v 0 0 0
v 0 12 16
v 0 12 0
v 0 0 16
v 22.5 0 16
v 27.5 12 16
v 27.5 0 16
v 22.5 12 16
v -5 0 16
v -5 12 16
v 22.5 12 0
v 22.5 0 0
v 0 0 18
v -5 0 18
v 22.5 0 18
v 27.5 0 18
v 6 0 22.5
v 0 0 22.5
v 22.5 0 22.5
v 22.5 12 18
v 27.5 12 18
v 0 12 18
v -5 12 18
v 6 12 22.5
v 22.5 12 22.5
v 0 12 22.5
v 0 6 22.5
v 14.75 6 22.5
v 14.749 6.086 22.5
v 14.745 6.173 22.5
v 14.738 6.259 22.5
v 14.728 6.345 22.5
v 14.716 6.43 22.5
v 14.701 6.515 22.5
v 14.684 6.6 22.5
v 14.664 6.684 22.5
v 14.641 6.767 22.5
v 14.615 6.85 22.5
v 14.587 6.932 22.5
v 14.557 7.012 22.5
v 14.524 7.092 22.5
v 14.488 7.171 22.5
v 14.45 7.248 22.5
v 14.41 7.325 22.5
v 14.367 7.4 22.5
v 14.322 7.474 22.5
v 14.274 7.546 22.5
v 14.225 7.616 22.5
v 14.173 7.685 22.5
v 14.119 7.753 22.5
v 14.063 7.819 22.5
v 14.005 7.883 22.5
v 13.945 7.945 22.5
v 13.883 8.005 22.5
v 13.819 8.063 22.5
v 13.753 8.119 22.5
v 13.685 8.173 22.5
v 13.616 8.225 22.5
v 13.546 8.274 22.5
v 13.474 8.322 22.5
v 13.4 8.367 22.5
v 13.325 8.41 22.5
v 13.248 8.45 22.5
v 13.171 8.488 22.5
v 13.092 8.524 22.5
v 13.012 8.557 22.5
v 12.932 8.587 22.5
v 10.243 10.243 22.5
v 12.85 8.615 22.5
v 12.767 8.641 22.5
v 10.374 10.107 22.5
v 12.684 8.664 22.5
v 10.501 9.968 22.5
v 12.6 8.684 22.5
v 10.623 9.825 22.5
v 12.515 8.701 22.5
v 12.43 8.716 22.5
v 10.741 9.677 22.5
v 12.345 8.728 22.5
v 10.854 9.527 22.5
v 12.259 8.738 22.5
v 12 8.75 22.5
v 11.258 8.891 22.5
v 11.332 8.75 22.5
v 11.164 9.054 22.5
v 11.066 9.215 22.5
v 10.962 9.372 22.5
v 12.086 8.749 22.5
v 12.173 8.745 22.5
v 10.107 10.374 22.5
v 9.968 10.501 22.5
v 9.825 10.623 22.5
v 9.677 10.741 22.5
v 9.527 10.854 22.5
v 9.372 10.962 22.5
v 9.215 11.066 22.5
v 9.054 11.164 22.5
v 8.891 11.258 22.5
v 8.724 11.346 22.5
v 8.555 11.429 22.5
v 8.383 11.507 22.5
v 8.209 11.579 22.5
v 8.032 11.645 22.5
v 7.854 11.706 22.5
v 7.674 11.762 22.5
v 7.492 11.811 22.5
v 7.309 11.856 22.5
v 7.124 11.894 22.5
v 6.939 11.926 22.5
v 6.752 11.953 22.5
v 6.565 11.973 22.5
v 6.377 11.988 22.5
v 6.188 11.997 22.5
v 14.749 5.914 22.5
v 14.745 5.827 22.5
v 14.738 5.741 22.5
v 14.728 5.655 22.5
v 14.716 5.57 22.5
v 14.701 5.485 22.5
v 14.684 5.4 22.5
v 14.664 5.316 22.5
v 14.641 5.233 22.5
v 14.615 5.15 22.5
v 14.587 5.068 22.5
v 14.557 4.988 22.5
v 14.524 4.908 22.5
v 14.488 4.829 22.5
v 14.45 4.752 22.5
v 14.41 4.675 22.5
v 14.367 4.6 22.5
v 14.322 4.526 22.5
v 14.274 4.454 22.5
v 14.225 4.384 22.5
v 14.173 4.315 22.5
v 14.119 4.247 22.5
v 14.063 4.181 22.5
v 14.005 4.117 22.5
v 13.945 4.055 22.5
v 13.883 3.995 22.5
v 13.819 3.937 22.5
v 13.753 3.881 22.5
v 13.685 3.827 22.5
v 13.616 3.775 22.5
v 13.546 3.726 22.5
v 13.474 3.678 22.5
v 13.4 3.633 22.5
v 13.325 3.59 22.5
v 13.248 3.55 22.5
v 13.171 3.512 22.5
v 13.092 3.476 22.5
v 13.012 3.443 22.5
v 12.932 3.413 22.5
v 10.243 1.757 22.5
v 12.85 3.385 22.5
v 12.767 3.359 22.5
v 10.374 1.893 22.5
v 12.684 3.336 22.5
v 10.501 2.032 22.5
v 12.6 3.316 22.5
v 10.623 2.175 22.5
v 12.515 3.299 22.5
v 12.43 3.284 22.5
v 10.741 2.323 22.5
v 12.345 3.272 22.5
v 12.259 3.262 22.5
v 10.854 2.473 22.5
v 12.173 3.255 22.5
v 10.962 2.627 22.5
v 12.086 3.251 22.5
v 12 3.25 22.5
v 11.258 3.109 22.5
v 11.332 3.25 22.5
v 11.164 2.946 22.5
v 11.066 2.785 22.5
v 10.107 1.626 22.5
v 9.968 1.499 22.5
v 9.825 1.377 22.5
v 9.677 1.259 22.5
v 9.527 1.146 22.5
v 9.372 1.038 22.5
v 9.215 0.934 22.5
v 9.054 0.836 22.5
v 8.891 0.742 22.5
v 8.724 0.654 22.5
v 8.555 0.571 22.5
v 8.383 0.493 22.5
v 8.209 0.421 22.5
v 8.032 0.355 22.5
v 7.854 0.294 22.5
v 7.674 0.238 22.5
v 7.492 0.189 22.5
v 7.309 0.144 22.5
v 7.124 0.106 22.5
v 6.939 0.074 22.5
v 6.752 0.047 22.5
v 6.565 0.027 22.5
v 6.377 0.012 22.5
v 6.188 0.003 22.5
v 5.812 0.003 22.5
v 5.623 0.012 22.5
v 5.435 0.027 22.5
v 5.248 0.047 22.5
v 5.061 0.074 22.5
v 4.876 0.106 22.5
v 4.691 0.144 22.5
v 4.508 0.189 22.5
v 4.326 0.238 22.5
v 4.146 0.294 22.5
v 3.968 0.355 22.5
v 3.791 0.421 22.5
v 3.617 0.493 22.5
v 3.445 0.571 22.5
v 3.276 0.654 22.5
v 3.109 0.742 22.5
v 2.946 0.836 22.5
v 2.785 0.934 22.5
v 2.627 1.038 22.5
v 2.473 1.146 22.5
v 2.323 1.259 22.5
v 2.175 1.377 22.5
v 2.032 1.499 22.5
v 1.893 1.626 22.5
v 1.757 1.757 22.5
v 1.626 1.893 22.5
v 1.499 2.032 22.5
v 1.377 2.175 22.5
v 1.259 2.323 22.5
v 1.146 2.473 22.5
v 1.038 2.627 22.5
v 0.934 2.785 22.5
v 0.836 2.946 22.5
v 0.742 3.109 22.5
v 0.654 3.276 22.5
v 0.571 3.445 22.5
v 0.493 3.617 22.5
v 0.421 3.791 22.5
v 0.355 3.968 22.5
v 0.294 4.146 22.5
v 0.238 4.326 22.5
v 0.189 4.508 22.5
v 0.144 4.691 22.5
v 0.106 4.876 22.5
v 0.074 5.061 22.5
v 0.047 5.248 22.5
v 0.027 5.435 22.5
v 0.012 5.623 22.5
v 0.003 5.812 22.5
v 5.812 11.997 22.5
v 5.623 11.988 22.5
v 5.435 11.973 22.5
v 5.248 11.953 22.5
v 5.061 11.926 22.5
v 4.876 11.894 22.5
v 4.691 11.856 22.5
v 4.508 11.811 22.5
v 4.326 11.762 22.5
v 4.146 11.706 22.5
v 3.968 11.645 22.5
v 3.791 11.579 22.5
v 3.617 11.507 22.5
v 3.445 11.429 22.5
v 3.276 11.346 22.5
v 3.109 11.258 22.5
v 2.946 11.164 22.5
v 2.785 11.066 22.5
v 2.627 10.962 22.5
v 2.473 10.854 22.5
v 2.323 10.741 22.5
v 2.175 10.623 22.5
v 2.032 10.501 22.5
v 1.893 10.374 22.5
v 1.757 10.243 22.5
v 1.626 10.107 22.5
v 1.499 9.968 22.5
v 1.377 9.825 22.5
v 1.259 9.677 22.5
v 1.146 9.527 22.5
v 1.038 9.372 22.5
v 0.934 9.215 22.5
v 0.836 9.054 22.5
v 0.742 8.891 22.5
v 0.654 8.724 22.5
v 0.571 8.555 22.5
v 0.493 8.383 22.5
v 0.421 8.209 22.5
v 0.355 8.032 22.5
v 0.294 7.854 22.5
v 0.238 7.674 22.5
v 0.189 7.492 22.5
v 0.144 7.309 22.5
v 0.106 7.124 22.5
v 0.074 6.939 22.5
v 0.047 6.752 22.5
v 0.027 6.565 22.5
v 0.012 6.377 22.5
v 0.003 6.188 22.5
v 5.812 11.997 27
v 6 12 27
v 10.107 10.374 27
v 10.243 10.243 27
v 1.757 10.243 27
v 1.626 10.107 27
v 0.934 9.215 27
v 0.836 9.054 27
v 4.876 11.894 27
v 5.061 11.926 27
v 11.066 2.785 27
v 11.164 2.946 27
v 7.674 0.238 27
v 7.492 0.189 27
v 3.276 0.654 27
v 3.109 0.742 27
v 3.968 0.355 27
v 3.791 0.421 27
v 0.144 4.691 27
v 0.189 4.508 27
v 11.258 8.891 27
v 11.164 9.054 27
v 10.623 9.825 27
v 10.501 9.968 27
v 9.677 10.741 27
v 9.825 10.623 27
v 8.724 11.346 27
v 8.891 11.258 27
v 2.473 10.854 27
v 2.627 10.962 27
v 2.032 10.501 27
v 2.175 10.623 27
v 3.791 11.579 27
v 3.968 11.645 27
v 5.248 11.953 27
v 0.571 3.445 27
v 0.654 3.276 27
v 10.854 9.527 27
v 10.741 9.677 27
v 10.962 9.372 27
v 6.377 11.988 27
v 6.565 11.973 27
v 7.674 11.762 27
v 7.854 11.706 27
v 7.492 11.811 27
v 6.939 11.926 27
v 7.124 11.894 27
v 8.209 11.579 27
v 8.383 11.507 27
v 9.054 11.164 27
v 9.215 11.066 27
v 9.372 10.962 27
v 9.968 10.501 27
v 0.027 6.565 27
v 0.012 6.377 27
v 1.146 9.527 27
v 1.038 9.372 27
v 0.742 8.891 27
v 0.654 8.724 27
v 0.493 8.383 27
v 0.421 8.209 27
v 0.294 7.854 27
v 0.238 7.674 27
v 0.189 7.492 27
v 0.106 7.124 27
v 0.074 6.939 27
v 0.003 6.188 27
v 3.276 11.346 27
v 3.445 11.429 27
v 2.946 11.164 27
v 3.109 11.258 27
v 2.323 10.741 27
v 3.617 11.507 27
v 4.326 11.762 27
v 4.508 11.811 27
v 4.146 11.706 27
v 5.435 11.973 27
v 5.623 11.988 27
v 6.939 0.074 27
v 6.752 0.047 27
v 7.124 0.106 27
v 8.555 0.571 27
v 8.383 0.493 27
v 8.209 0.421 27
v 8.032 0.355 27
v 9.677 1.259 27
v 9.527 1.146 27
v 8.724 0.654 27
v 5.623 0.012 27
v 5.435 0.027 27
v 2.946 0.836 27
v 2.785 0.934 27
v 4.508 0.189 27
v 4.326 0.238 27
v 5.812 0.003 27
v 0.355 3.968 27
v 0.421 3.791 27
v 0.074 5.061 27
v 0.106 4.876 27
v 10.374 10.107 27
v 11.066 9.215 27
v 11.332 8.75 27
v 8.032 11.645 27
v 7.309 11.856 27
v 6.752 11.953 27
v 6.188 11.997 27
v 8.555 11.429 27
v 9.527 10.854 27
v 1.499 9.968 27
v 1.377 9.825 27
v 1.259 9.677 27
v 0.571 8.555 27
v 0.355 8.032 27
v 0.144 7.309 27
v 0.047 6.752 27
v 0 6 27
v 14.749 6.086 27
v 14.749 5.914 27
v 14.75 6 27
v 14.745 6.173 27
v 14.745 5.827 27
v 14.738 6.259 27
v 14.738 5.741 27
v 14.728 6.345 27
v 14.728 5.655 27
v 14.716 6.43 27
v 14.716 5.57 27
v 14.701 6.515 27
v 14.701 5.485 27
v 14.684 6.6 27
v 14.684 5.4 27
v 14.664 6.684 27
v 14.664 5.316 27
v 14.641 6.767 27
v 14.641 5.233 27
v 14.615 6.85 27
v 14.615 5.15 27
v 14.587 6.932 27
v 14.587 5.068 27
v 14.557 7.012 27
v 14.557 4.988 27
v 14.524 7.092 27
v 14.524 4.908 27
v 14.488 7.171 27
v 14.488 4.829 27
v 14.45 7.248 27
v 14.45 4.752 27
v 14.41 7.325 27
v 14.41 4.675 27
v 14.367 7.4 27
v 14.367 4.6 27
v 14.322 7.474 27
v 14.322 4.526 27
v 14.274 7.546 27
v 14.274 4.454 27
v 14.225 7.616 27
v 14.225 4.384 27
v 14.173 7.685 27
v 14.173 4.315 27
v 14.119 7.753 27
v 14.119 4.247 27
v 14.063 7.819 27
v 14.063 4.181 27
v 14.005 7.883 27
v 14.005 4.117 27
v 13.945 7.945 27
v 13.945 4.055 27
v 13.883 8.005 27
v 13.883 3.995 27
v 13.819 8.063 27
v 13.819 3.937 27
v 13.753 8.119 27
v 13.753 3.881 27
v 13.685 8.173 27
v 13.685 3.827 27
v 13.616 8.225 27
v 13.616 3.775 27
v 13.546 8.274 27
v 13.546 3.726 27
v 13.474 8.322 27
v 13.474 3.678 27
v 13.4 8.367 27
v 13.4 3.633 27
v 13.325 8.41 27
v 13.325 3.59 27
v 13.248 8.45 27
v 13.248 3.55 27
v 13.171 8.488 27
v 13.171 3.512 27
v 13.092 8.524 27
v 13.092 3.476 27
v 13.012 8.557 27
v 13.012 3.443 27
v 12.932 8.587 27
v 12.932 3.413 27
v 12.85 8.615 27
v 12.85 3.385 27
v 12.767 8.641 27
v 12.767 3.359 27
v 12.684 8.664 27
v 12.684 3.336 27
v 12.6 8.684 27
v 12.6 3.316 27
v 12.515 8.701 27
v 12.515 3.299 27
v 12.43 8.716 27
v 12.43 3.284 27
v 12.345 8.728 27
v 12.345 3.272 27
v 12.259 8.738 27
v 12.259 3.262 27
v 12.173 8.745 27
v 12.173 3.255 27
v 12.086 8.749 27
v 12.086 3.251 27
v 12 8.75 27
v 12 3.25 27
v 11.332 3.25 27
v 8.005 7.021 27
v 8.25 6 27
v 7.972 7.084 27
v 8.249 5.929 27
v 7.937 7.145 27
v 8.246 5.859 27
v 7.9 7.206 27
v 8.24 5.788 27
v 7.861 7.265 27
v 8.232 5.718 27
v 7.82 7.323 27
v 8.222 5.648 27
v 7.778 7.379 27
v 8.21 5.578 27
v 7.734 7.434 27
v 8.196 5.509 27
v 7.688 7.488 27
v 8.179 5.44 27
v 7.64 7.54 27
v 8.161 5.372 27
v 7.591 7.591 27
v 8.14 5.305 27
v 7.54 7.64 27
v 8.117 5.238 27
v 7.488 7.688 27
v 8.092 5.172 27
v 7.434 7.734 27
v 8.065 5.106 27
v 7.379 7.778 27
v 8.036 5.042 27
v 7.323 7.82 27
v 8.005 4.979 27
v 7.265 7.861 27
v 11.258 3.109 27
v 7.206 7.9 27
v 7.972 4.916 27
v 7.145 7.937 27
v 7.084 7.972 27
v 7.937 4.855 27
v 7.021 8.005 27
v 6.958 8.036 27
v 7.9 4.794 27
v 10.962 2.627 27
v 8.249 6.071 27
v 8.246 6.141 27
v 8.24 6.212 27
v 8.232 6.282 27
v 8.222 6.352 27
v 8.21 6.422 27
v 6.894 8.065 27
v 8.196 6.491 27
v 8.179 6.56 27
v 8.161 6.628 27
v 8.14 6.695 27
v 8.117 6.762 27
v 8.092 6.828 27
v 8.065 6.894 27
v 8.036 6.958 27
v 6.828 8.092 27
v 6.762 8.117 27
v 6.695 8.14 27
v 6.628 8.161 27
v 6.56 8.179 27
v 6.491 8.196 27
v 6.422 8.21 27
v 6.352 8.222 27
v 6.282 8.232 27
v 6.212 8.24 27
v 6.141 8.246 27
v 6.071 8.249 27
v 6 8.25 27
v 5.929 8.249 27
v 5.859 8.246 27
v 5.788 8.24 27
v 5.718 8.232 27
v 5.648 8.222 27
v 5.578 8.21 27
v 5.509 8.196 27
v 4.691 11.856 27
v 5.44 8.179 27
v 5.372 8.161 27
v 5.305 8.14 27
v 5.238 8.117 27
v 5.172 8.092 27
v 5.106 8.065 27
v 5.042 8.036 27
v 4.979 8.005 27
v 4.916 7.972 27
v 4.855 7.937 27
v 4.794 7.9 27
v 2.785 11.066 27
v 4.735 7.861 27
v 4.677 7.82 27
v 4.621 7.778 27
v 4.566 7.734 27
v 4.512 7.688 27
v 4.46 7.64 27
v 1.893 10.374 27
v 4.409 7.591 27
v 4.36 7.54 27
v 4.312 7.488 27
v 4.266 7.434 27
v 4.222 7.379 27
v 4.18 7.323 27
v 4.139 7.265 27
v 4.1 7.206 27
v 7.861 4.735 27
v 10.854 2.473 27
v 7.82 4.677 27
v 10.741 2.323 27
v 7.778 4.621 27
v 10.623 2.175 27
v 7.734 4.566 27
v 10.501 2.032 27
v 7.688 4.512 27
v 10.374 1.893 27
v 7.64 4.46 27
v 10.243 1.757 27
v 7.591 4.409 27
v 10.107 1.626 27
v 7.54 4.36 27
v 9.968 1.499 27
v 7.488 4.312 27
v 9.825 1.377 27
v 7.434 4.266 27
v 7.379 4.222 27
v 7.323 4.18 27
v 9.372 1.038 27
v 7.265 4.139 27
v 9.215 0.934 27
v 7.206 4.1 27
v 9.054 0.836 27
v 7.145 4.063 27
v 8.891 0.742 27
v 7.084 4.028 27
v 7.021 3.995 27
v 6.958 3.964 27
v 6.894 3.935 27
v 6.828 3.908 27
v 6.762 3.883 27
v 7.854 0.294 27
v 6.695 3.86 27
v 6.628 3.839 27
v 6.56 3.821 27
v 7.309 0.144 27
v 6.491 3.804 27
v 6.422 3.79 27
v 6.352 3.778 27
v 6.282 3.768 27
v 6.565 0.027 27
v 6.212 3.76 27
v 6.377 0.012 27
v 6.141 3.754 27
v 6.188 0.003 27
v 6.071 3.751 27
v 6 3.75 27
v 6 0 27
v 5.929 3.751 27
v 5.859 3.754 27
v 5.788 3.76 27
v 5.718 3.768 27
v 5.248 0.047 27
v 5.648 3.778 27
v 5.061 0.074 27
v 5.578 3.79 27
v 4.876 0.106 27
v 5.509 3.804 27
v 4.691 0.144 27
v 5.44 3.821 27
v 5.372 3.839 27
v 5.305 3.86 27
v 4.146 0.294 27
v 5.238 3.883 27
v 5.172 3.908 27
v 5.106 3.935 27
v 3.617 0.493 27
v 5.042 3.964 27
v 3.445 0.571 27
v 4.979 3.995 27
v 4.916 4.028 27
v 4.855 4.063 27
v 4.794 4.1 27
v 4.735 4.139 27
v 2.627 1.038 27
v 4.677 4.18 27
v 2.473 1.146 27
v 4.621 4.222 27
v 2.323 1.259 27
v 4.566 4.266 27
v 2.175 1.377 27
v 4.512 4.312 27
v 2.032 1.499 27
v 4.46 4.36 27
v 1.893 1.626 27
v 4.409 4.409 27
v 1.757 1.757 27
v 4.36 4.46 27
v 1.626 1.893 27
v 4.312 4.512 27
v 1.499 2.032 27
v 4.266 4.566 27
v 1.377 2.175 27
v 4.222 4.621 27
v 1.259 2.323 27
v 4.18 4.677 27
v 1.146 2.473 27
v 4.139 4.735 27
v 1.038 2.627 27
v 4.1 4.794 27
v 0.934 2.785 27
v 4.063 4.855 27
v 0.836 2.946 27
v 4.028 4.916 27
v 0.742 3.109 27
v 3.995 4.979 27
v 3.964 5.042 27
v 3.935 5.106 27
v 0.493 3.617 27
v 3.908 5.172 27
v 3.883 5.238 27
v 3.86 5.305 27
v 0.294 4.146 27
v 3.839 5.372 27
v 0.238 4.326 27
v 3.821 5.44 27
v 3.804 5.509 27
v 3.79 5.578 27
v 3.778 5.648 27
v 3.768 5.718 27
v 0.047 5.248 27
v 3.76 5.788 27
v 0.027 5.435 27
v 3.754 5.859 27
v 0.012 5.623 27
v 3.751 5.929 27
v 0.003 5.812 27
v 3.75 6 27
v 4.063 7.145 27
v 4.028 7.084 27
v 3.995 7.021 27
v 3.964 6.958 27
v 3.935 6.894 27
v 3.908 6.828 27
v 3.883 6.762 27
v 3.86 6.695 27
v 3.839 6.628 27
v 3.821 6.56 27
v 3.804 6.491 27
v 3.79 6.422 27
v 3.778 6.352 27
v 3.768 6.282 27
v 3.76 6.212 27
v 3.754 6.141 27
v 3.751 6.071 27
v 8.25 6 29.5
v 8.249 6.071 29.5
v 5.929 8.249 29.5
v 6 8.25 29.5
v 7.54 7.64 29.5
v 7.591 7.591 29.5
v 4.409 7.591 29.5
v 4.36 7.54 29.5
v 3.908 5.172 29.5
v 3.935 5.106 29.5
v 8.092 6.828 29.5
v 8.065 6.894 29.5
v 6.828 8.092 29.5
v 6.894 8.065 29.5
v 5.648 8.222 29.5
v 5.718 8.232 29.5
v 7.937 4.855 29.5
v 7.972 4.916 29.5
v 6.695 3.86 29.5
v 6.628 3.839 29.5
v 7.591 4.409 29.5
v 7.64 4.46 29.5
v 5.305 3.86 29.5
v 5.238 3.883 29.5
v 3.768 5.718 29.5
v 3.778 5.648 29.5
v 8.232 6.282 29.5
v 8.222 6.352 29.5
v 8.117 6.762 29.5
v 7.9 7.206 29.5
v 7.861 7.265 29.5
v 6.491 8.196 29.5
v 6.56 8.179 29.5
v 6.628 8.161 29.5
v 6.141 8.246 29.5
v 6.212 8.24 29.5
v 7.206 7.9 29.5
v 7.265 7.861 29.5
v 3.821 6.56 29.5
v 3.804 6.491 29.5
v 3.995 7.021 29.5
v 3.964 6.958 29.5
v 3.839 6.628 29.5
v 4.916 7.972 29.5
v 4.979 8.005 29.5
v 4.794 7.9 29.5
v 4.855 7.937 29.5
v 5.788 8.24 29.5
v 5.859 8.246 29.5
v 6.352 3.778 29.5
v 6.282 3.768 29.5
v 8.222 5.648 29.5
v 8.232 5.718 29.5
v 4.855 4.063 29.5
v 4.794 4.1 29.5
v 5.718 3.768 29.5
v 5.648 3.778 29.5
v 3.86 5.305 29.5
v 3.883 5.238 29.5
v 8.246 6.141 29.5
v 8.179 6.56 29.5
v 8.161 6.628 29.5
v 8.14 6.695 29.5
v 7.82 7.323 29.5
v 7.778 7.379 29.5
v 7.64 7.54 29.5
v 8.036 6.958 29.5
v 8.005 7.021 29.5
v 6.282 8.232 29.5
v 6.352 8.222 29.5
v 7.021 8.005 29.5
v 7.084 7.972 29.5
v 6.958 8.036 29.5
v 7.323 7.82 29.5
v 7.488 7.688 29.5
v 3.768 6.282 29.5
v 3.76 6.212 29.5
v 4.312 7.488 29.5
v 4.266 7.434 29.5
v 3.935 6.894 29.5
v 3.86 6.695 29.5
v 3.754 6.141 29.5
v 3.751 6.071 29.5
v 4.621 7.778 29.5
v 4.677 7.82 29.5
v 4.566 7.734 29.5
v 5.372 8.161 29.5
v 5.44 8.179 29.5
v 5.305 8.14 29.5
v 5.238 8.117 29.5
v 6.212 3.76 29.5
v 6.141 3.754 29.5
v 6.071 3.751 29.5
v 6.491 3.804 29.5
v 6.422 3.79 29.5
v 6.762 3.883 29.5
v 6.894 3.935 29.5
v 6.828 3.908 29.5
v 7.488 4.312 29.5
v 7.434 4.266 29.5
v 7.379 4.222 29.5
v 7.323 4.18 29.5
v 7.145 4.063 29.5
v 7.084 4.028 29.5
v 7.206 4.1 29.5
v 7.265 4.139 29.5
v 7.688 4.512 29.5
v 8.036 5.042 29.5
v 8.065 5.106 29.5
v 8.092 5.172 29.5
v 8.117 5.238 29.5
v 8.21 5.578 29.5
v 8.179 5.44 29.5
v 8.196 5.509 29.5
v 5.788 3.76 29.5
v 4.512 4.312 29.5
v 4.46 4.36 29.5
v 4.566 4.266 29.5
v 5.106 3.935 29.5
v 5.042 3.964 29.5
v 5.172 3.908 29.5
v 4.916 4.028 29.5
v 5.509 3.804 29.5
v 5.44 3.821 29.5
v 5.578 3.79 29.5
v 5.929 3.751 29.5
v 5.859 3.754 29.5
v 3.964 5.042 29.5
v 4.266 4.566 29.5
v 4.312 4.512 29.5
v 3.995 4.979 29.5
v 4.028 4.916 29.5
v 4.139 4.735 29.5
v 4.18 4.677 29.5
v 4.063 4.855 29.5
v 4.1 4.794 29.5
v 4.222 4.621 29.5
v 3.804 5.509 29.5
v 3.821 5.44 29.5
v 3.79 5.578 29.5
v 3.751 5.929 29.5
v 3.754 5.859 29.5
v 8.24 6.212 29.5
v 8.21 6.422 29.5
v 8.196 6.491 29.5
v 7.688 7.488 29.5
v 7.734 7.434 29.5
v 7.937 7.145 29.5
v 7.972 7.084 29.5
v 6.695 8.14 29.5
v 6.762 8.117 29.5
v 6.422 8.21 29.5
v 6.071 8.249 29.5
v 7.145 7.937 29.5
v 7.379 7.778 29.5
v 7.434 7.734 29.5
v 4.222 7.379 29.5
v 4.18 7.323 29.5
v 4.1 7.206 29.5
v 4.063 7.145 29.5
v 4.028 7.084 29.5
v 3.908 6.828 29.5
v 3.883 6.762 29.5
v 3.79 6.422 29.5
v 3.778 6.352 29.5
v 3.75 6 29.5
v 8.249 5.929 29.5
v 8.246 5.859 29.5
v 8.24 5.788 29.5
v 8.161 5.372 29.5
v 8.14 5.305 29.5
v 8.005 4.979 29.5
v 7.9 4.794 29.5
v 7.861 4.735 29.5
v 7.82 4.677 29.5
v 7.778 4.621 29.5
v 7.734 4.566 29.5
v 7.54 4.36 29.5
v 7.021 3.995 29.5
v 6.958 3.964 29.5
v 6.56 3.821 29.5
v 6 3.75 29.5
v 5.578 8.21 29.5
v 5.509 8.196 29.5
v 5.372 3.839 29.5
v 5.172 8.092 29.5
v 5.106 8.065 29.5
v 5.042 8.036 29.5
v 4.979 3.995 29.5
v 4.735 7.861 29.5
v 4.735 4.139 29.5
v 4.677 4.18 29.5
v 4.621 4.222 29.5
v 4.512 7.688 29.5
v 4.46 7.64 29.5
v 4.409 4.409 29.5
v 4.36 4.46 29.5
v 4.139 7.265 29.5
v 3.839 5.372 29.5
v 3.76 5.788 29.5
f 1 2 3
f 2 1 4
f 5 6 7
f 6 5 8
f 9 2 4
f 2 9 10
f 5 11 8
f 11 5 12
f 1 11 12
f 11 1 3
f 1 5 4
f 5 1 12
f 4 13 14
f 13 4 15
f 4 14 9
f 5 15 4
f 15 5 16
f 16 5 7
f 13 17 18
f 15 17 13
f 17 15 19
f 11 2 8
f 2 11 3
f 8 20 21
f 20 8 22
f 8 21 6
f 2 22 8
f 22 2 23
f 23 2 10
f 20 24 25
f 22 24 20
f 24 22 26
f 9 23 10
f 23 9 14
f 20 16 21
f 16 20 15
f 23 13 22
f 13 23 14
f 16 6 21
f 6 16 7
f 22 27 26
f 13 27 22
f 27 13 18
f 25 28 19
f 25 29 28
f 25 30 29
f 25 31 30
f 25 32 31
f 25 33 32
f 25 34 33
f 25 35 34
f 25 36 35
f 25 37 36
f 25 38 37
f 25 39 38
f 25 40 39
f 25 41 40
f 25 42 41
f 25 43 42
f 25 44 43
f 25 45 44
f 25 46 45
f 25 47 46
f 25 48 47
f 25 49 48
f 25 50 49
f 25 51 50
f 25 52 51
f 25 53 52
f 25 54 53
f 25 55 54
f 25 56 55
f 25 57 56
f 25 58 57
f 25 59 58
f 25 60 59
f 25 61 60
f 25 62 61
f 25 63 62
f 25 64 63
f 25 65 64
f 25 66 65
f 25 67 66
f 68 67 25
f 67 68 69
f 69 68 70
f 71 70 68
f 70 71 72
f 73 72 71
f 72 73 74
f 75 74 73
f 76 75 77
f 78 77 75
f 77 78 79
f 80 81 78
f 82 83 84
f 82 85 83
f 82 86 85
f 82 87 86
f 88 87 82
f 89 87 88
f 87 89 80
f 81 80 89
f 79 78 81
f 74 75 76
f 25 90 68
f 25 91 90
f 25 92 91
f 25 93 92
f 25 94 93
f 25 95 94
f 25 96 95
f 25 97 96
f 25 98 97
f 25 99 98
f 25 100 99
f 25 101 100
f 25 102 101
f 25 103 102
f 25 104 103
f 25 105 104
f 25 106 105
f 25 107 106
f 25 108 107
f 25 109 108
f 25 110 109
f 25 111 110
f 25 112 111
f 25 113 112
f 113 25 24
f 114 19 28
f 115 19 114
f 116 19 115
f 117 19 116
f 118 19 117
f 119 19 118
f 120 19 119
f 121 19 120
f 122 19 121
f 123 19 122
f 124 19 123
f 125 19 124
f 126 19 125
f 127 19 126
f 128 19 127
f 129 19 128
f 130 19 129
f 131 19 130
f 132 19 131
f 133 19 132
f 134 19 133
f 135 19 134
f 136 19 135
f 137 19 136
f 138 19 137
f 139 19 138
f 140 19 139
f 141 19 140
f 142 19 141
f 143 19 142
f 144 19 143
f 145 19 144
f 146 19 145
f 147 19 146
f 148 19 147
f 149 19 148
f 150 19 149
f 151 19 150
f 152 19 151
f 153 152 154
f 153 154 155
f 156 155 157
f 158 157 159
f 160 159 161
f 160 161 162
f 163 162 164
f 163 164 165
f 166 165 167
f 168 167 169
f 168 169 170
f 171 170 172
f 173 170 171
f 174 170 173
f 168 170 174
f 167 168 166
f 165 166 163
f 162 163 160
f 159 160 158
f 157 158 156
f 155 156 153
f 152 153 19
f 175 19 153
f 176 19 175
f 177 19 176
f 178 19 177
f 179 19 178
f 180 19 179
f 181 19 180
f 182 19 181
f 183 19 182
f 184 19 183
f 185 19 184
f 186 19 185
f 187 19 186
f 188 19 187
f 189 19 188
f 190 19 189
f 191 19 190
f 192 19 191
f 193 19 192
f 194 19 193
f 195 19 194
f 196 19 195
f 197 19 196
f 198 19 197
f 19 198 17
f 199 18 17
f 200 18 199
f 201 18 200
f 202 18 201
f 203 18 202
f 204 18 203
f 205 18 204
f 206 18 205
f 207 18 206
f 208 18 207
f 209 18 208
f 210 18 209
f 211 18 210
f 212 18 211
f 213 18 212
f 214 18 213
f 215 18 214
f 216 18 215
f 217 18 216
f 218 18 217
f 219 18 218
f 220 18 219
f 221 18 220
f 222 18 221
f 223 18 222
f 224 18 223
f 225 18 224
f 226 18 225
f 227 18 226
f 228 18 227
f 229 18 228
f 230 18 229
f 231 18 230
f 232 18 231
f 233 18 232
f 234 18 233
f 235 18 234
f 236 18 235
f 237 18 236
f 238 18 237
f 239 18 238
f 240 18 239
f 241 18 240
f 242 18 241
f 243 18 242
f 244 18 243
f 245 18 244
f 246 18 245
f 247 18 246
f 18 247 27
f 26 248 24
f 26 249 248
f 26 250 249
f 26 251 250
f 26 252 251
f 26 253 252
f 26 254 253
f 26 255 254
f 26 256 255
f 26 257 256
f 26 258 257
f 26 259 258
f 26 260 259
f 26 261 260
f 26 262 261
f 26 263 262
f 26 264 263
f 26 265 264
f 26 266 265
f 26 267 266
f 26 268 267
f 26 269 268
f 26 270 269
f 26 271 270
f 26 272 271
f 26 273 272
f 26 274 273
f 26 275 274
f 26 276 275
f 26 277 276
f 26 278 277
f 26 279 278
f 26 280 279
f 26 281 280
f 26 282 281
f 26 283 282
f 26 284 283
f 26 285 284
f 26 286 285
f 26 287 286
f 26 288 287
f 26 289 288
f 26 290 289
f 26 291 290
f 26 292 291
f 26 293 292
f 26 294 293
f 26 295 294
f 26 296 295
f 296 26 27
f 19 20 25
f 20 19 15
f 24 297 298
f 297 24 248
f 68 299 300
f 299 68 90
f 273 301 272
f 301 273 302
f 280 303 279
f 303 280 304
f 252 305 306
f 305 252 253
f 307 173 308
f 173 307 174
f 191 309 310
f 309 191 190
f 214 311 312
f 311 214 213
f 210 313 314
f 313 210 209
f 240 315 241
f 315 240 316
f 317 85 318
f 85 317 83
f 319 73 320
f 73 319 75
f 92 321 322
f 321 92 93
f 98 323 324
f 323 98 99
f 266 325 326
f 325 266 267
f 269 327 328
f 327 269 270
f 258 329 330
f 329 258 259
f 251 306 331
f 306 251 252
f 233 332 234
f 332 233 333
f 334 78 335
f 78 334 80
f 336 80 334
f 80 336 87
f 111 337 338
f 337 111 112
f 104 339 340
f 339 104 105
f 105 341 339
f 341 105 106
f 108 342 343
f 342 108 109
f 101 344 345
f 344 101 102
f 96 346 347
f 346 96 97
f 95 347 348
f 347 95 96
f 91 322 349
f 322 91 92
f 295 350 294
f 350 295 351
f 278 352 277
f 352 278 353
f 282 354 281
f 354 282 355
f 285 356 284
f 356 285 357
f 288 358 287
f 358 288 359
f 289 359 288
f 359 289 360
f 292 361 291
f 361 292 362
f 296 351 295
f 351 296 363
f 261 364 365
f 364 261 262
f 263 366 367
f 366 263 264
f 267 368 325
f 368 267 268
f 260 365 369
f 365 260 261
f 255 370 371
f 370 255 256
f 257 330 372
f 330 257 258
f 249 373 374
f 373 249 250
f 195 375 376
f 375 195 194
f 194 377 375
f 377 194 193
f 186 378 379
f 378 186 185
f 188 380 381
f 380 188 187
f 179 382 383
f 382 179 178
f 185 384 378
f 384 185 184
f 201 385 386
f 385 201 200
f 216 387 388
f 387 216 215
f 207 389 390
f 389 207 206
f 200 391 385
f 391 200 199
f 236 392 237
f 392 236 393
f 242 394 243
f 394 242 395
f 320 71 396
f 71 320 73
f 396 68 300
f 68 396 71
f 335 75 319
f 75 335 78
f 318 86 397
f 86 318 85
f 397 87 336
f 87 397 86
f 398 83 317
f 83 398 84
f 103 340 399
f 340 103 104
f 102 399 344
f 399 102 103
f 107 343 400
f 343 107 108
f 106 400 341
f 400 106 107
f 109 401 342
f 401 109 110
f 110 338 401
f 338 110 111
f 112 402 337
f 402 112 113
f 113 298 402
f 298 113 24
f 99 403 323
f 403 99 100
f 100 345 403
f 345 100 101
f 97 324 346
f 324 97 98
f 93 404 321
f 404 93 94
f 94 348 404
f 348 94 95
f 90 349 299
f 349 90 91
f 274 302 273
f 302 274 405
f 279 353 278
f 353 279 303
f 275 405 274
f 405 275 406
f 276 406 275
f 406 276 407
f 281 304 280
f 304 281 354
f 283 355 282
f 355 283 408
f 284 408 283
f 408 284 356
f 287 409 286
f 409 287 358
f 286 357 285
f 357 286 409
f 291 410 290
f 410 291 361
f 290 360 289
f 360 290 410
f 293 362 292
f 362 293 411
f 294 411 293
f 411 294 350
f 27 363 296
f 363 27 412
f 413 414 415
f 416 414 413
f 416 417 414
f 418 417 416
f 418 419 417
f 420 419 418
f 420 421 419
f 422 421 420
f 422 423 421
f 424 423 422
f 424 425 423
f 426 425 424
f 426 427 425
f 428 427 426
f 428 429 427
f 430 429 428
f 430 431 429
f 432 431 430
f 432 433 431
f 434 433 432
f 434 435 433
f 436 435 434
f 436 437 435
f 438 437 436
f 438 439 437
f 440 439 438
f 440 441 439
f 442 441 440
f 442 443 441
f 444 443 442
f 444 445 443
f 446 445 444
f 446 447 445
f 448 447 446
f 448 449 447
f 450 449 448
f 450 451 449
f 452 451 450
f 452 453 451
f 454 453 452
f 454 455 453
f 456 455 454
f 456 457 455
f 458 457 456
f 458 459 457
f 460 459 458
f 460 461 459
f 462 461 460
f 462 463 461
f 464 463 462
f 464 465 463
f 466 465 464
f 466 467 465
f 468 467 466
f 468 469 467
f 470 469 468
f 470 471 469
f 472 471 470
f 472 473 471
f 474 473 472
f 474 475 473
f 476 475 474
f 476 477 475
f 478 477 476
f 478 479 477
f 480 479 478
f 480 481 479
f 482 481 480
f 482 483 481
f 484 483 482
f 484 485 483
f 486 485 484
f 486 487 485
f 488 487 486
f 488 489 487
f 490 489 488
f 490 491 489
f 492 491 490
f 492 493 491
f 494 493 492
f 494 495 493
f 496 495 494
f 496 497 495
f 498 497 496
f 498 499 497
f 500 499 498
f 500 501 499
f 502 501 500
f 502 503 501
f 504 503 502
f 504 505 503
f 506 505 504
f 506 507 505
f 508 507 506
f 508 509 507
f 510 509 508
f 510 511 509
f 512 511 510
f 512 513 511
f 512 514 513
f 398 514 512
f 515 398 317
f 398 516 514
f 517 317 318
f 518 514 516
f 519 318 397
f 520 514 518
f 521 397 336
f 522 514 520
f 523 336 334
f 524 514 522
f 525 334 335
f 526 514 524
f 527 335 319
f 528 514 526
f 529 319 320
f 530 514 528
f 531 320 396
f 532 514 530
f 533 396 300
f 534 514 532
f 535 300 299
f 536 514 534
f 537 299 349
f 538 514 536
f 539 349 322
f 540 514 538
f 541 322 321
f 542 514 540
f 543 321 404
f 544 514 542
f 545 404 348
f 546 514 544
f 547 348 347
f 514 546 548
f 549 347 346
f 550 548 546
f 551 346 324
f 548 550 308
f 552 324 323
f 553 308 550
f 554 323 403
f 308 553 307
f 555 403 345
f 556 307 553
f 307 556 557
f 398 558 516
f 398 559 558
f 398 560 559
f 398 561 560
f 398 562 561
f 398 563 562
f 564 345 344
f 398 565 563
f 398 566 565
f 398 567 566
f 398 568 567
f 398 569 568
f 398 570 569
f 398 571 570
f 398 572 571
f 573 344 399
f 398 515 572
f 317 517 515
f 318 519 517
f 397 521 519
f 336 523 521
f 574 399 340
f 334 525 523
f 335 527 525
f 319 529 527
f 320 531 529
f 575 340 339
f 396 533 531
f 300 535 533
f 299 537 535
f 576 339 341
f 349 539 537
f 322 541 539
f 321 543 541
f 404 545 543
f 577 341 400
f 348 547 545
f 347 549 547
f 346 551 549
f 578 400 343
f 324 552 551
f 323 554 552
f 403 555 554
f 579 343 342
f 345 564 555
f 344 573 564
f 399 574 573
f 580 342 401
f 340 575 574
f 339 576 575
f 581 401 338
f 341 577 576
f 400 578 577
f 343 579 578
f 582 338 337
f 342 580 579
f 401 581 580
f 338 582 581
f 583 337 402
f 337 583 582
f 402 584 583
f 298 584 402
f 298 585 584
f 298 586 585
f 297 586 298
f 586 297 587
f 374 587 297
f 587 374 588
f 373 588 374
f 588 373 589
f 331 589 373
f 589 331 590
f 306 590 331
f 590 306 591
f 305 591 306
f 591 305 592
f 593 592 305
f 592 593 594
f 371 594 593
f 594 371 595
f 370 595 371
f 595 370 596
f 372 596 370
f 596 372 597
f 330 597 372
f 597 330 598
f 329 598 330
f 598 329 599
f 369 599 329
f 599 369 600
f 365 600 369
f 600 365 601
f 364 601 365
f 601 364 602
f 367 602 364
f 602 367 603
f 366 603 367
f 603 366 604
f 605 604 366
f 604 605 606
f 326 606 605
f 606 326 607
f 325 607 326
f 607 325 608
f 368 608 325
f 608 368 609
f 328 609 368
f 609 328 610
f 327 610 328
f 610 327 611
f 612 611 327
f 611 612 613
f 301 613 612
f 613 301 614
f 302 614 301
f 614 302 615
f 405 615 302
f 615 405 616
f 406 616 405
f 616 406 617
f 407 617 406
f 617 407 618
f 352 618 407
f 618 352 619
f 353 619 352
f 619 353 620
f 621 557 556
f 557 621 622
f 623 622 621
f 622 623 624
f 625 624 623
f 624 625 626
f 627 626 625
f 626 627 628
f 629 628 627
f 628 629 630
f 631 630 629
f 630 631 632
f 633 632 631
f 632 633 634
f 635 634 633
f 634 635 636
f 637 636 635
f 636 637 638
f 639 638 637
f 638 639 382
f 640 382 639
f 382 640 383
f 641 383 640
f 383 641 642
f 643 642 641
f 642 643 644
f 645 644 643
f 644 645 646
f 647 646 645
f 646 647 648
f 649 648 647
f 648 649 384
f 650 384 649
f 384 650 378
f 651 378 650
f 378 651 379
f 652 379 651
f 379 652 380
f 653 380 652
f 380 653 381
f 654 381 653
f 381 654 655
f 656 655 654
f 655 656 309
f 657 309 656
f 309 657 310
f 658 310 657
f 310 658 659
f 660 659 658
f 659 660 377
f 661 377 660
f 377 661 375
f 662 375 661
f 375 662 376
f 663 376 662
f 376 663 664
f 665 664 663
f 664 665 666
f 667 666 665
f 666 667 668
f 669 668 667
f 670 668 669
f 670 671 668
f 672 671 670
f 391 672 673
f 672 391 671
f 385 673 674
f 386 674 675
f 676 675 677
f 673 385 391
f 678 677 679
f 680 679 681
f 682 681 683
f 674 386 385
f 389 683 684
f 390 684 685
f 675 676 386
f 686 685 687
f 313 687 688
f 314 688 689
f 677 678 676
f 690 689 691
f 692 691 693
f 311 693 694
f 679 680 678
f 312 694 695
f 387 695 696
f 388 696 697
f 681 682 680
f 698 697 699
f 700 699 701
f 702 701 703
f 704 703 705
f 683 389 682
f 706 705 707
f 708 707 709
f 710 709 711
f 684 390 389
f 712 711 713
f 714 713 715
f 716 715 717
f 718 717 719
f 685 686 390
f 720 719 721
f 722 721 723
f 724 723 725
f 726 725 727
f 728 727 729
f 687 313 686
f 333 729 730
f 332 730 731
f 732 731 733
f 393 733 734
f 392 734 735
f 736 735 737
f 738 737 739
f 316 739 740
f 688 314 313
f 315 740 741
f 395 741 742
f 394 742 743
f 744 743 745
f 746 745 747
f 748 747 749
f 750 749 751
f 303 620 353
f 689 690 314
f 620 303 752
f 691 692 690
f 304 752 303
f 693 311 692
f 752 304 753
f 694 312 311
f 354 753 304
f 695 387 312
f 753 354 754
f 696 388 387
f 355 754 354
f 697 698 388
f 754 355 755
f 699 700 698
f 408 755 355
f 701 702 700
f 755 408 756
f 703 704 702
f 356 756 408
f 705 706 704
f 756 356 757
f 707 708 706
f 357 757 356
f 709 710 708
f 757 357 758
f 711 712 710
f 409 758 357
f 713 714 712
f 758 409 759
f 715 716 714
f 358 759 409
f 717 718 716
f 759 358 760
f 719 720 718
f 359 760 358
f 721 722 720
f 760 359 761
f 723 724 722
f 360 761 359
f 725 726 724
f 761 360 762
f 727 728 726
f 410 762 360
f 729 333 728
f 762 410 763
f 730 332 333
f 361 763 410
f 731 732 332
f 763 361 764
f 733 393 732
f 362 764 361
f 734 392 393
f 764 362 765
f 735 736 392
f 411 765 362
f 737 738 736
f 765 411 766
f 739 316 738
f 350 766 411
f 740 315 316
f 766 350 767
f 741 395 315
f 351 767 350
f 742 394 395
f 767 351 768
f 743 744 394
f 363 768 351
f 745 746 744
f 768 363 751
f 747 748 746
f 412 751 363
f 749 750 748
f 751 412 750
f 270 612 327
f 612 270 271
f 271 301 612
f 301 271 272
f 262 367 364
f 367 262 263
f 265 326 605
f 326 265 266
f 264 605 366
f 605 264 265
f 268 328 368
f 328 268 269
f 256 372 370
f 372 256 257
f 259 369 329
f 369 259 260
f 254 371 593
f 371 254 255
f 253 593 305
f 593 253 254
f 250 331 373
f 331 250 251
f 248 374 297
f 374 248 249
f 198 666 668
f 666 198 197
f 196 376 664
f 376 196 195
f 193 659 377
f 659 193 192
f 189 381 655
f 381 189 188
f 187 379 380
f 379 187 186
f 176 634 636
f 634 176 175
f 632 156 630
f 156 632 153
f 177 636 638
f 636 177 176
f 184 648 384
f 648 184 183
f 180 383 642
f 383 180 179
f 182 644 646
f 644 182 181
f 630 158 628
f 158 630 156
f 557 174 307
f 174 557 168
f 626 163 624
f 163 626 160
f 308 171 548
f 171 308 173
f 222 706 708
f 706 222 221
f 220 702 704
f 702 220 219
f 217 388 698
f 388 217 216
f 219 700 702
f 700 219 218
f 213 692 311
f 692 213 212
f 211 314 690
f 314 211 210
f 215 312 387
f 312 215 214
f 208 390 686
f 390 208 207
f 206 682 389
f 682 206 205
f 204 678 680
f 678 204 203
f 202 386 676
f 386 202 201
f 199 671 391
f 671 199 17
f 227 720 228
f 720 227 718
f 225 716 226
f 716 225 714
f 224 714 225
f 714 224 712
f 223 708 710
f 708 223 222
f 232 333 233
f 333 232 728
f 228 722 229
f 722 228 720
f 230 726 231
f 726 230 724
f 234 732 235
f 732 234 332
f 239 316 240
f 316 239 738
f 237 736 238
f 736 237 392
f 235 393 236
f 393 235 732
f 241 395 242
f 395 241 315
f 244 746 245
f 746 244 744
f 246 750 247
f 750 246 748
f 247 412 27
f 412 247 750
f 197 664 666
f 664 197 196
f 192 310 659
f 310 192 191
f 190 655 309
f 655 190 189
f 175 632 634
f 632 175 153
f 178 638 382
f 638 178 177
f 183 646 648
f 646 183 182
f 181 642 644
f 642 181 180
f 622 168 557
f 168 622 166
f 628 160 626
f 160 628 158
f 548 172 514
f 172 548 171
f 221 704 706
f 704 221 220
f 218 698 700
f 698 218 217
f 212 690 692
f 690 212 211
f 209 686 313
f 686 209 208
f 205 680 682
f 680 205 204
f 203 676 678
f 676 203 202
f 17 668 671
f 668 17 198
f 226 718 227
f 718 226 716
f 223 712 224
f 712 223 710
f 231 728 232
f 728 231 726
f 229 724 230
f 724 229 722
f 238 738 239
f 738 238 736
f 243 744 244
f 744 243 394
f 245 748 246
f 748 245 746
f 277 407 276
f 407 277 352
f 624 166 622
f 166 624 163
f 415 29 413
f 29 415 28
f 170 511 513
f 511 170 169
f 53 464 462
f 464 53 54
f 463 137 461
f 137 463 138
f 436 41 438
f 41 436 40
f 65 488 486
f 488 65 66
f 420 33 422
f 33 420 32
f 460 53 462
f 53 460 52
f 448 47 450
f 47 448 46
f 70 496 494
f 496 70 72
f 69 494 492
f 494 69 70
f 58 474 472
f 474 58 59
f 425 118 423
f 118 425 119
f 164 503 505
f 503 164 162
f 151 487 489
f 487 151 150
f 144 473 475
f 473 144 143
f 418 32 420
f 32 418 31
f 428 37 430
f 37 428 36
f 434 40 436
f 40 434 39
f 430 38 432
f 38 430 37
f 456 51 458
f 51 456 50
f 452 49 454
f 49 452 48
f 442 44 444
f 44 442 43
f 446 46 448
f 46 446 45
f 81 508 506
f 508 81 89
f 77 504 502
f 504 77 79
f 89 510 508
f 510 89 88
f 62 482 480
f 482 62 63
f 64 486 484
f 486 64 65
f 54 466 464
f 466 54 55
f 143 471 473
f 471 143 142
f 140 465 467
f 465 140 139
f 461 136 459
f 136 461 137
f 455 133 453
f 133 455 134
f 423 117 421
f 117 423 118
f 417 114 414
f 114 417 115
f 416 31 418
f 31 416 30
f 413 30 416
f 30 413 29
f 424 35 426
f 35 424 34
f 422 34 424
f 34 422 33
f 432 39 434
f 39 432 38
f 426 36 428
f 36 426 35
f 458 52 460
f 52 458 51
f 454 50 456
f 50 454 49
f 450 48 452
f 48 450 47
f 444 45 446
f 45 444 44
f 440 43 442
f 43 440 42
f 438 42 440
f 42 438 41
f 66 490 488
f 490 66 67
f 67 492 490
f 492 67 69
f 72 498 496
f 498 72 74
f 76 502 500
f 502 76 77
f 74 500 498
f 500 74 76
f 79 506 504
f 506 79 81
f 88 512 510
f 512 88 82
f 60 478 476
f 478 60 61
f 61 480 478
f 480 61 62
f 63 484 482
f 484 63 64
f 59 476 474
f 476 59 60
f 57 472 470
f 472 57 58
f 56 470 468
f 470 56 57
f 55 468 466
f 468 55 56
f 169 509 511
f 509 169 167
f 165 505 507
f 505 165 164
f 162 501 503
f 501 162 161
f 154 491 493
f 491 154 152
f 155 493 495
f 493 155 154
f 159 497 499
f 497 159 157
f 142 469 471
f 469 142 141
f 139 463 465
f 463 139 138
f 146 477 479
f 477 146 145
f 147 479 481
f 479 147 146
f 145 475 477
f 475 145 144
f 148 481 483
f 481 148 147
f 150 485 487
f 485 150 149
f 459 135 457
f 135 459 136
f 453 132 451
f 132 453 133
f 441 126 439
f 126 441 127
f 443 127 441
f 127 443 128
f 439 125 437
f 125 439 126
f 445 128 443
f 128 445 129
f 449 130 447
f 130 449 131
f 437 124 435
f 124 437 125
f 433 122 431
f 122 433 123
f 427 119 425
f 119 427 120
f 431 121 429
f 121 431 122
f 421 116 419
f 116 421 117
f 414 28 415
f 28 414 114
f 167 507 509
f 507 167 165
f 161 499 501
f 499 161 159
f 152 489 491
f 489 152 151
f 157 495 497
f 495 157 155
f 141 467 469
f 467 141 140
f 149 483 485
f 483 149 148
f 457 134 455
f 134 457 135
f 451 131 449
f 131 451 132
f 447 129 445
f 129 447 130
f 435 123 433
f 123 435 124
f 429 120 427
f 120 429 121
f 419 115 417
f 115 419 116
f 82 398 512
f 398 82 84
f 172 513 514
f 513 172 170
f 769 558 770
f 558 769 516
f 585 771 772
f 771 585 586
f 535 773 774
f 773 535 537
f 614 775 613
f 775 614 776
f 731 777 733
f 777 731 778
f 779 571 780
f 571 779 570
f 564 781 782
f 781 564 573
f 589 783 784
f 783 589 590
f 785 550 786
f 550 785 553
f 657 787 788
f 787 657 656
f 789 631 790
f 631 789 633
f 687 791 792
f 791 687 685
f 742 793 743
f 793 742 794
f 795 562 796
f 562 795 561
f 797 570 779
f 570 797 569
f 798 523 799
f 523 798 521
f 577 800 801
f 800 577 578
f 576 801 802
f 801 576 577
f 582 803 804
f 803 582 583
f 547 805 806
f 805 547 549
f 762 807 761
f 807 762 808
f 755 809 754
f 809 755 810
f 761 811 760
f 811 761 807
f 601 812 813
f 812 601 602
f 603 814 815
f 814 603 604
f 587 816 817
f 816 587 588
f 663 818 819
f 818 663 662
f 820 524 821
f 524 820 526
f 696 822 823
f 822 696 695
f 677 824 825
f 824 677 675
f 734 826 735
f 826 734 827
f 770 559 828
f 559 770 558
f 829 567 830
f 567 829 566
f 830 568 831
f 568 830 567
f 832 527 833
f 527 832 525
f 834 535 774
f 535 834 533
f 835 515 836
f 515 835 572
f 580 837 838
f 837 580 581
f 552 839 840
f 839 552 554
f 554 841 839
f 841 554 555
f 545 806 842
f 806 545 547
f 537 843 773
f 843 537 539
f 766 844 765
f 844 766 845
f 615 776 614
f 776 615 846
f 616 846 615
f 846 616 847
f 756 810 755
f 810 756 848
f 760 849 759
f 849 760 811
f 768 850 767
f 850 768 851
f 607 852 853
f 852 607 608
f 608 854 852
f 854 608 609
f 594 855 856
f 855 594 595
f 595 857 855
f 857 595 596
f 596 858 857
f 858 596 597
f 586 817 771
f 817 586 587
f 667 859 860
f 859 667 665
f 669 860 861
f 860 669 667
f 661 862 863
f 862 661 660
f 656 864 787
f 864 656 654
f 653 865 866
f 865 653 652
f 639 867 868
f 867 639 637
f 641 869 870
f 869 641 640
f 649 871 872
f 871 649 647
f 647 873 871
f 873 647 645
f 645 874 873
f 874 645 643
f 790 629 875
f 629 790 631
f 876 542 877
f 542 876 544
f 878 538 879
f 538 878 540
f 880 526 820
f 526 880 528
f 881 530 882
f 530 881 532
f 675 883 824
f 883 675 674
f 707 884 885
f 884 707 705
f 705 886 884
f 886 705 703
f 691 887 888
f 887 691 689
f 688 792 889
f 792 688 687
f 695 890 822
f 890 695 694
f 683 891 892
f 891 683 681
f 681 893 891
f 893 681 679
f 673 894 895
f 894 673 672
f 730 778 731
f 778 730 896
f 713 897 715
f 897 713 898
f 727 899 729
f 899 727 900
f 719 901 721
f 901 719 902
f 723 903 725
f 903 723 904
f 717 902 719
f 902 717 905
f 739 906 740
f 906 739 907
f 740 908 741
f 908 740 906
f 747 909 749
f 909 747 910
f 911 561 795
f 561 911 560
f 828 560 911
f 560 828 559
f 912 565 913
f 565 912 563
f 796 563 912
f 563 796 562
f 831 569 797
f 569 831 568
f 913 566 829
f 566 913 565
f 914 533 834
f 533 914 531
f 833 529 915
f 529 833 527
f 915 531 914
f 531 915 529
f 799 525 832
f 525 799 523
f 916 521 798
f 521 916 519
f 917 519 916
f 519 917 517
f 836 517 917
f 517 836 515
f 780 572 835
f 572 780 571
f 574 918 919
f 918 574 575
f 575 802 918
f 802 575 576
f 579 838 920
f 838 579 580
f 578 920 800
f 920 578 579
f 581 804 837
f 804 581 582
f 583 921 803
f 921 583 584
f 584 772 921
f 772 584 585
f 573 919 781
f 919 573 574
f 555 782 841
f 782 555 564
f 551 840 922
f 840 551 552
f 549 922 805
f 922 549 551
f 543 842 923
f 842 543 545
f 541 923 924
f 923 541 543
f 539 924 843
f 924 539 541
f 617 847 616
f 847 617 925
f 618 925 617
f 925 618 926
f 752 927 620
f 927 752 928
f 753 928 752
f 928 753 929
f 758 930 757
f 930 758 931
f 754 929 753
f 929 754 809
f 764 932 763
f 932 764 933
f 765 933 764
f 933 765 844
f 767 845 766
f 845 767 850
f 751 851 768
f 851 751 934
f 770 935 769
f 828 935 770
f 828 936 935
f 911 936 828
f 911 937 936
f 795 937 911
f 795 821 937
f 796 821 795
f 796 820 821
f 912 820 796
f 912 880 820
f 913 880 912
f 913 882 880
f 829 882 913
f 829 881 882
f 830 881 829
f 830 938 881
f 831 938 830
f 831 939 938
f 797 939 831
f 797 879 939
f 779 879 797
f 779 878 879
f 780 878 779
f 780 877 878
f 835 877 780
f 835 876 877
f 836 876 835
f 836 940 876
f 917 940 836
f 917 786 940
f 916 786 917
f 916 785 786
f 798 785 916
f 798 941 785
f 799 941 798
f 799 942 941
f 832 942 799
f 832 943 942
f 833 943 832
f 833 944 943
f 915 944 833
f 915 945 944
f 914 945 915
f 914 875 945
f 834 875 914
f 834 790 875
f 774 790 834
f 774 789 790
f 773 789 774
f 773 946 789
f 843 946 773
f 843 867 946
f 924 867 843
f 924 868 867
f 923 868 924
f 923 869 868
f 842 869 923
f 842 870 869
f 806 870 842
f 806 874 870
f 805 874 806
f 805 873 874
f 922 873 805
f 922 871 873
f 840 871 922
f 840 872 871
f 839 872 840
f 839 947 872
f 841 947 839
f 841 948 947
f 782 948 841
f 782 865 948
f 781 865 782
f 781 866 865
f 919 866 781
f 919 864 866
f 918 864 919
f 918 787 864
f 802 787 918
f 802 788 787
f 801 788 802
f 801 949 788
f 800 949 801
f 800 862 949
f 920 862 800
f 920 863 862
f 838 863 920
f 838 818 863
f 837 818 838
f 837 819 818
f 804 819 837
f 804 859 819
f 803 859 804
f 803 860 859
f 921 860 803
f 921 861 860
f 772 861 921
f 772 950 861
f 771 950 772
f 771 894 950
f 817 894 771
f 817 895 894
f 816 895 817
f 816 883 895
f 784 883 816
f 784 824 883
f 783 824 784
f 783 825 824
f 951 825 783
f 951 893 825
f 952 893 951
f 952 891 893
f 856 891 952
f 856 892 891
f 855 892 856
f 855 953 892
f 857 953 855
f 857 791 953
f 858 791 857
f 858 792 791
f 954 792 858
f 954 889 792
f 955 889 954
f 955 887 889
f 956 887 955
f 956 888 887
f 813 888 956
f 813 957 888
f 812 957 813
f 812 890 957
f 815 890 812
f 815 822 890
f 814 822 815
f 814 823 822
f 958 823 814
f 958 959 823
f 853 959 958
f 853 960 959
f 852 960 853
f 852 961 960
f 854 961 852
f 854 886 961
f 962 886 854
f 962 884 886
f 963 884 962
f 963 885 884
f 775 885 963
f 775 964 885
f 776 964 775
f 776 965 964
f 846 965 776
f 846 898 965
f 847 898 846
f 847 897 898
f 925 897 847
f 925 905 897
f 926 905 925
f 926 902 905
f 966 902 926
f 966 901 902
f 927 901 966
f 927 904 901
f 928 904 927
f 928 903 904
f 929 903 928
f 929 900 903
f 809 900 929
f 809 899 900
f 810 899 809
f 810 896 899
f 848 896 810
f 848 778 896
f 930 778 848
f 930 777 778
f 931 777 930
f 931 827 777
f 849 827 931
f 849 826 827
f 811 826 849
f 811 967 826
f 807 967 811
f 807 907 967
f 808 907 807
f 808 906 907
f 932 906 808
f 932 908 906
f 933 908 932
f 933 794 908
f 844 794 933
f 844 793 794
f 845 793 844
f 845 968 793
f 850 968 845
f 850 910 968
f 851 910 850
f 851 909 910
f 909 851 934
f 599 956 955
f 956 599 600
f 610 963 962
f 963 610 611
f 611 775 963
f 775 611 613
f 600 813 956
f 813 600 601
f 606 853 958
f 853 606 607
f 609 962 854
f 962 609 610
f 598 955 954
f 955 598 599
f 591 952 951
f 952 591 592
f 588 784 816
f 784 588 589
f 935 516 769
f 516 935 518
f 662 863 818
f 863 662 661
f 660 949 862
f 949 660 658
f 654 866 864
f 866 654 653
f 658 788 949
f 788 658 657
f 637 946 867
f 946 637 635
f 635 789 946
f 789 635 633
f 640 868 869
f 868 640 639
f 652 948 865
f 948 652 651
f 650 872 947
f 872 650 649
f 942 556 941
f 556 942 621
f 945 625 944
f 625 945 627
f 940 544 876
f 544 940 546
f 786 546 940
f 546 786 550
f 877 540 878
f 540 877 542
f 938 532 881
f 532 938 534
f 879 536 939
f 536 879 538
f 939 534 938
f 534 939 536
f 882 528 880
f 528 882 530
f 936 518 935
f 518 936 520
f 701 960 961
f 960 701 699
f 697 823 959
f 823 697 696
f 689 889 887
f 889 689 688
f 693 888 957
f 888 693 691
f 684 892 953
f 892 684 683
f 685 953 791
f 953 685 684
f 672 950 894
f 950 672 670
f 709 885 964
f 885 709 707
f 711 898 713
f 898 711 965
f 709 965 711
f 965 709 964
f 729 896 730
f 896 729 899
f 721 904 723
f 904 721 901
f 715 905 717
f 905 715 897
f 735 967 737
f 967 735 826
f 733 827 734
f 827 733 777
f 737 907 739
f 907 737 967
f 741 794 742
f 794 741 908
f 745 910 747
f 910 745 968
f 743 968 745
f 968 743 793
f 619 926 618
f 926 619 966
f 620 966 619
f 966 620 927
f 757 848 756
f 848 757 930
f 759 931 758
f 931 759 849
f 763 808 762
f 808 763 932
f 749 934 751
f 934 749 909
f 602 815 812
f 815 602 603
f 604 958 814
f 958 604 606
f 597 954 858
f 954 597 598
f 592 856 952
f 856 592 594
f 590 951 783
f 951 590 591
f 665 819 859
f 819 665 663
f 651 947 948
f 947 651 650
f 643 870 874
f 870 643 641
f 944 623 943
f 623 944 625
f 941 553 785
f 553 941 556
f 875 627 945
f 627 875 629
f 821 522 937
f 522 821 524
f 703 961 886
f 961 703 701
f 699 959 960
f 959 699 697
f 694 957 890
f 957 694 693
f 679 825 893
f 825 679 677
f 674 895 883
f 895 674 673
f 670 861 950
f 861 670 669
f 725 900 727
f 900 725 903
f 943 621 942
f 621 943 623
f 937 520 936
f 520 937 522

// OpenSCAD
//Autora: Giovana Tripoloni Tangerino
//2020
$fn=200;


SG90_motor();
//SG90_motorBarra();
//SG90_motorBarraD();
//SG90_motorApoio();

//translate([6,6,27]) rotate([0,0,180]) SG90_motorBarra();	
//translate([6,6,27]) rotate([0,0,180]) SG90_motorBarraD();	

//---------------------------------------------------------
//SG90_motor();
module SG90_motor(){
		union(){
			translate([0,0,0]) rotate([0,0,0]) cube([22.5,12,16]);
			translate([-5,0,16]) rotate([0,0,0]) cube([32.5,12,2]);
			translate([0,0,18]) rotate([0,0,0]) cube([22.5,12,4.5]);
            translate([6,6,22.5]) rotate([0,0,0]) cylinder(4.5,6,6);
            translate([12,6,22.5]) rotate([0,0,0]) cylinder(4.5,2.75,2.75);
            translate([6.5,3.25,22.5]) rotate([0,0,0]) cube([5.5,5.5,4.5]);			
            translate([6,6,27]) rotate([0,0,0]) cylinder(2.5,2.25,2.25);
//			translate([6,6,27]) rotate([0,0,180]) SG90_motorBarra();	
   }
}
//---------------------------------------------------------
//SG90_motorBarra();
module SG90_motorBarra(){
//	difference(){
	//	translate([-6,-5,0]) rotate([0,0,0]) cube([25,10,3]);
		union(){
      	translate([0,0,0]) rotate([0,0,0]) cylinder(4.5,3.75,3.75);
       	translate([1.75,0,0]) rotate([0,0,0]) cylinder(4.5,2.75,2.75);
      	translate([14.5,0,0]) rotate([0,0,0]) cylinder(4.5,1.75,1.75);
			linear_extrude(height=4.5) polygon([[0, -3.65], [14.7, -1.75], [14.7, 1.75], [0, 3.65]]);		
		}
//   }
}

//---------------------------------------------------------
//SG90_motorBarraD();
module SG90_motorBarraD(){
//	difference(){//teste
//	translate([-18,-5,0]) rotate([0,0,0]) cube([36,10,2]);//teste
		union(){
      	translate([0,0,0]) cylinder(5,3.75,3.75);
      	rotate([0,0,0])   translate([14.4,0,0]) cylinder(5,2.2,2.2);
      	rotate([0,0,180]) translate([14.4,0,0]) cylinder(5,2.2,2.2);
			rotate([0,0,0])   linear_extrude(height=5) polygon([[0, -3.6], [14.7, -2.2], [14.7, 2.2], [0, 3.6]]);		
			rotate([0,0,180]) linear_extrude(height=5) polygon([[0, -3.6], [14.7, -2.2], [14.7, 2.2], [0, 3.6]]);		
//		}//teste
}
}
//---------------------------------------------------------
//SG90_motorApoio();
module SG90_motorApoio(){
	difference(){
		difference(){
     		translate([-5,0,18]) rotate([0,0,0]) cube([5,12,4.5]);
     		translate([-2.5,6,18]) rotate([0,0,0]) cylinder(4.5,.9,.9);
		}
		difference(){		        
     		translate([-5,0,18]) rotate([0,0,0]) cube([5,12,4.5]);
			translate([6,6,18]) rotate([0,0,0]) cylinder(5,10,10);
	 	}	
	}
	difference(){
      	translate([22.5,0,18]) rotate([0,0,0]) cube([5,12,4.5]);
      	translate([25,6,18]) rotate([0,0,0]) cylinder(4.5,.9,.9);
	}
}
